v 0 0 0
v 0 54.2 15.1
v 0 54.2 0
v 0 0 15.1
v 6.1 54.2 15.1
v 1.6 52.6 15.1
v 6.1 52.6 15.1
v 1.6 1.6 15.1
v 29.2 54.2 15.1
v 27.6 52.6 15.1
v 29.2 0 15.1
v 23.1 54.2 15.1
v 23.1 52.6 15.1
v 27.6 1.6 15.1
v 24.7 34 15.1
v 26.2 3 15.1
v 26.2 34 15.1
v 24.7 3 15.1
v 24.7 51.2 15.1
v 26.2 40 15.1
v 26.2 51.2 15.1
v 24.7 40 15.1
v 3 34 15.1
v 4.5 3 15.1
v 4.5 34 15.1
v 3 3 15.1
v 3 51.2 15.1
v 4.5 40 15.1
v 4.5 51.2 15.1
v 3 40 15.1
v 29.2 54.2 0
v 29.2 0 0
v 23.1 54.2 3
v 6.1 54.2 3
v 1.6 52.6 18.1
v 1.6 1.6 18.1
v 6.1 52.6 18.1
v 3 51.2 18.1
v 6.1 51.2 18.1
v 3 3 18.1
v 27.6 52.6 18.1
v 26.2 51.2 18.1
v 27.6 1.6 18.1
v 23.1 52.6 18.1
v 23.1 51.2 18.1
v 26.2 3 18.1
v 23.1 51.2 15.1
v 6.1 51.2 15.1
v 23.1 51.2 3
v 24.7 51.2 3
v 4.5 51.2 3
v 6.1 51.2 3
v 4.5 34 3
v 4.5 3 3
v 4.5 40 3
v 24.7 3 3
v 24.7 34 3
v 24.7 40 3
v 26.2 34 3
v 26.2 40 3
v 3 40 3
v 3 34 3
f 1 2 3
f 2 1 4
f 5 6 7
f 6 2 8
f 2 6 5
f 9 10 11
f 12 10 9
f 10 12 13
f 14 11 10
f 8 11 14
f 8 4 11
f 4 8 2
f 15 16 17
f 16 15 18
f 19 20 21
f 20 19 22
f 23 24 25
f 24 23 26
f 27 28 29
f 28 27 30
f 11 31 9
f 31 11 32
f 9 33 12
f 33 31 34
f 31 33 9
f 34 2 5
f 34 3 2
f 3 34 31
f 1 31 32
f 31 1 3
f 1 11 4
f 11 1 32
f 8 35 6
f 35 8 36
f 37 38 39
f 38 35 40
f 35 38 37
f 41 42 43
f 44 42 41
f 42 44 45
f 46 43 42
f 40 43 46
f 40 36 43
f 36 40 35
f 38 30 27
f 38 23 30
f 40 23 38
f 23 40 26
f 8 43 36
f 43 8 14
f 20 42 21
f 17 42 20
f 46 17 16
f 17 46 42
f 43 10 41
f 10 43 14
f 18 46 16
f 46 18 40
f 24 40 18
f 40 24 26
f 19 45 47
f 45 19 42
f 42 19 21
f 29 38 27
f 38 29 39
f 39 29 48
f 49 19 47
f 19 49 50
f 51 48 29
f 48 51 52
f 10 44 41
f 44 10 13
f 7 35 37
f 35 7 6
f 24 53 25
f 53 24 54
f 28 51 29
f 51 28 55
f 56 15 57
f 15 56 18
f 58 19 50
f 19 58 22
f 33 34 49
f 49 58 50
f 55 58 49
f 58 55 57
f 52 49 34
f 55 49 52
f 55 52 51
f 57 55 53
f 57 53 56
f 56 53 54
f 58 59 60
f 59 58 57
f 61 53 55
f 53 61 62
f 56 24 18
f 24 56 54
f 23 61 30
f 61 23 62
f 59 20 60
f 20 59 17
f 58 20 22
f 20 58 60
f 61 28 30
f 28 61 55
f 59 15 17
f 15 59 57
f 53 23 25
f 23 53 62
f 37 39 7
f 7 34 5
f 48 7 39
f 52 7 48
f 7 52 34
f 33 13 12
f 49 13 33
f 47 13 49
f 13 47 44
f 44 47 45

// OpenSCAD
// file: BaSHi-case-common.scad
$fn = $preview?6:360;

thick = 3;
tolerance = 0.1;

pcb_width = 23;

pcb_top = 15;
pcb_thick = 1.6;
pcb_bottom = 4;

cut_terminal_width = 17;

cut_top_pcb_offset = 31;
cut_top_pcb_height = 6;

pcb_border = 1.5;

box_inner_x = pcb_width + 2 * tolerance;
box_outer_x = box_inner_x + 2 * thick;

lip_width = thick / 2 - tolerance;
lip_height = 3;

// -------------------------------------------------------

b_box_inner_x_pcb = pcb_width - 2 * pcb_border + 2 * tolerance;

b_box_inner_z = pcb_bottom + pcb_thick + tolerance;
b_box_outer_z = b_box_inner_z + thick;

// --------------------------------------------------------

t_box_inner_z = pcb_top + tolerance - lip_height;
t_box_outer_z = t_box_inner_z + thick;

// --------------------------------------------------------

module case_top(pcb_height) {    
    box_inner_y = pcb_height + 2 * tolerance;
    box_outer_y = box_inner_y + 2 * thick;
    
    difference() {
        
        union() {
            // Initial box
            cube ([box_outer_x, box_outer_y, t_box_outer_z]);

            // Lip
            translate([thick - lip_width, thick - lip_width, t_box_outer_z])
                cube ([lip_width, box_outer_y - thick - lip_width, lip_height]);
            translate([box_outer_x - thick, thick - lip_width, t_box_outer_z])
                cube ([lip_width, box_outer_y - thick - lip_width, lip_height]);
            translate([thick - lip_width, thick - lip_width, t_box_outer_z])
                cube ([box_outer_x - 2 * thick  + 2 * lip_width, lip_width, lip_height]);
            translate([thick - lip_width, box_outer_y - thick, t_box_outer_z])
                cube ([box_outer_x - 2 * thick + 2 * lip_width, lip_width, lip_height]);
        }

        // Remove inner for pcb
        translate([box_outer_x/2 - b_box_inner_x_pcb/2, box_outer_y/2 - box_inner_y/2, thick])
            cube ([b_box_inner_x_pcb, box_inner_y, t_box_inner_z]);

        // Cutout inner for pcb
        translate([box_outer_x/2 - box_inner_x/2, thick + cut_top_pcb_offset, thick])
            cube ([box_inner_x, cut_top_pcb_height, t_box_inner_z]);

        // Remove Terminal        
        translate([box_outer_x/2 - cut_terminal_width/2, box_outer_y - thick, thick])
            cube ([cut_terminal_width, box_outer_y, t_box_inner_z + lip_height]);
    }
}

module case_bottom(pcb_height) {
    box_inner_y = pcb_height + 2 * tolerance;
    box_outer_y = box_inner_y + 2 * thick;
    
    difference() {
        
        union() {
            // Initial box
            cube ([box_outer_x, box_outer_y, b_box_outer_z]);
            
            // Lip
            translate([0, 0, b_box_outer_z])
                cube ([lip_width, box_outer_y, lip_height]);
            translate([box_outer_x - lip_width, 0, b_box_outer_z])
                cube ([lip_width, box_outer_y, lip_height]);
            translate([0, 0, b_box_outer_z])
                cube ([box_outer_x, lip_width, lip_height]);
            translate([0, box_outer_y - lip_width, b_box_outer_z])
                cube ([box_outer_x, lip_width, lip_height]);       
        }
        
        // Remove for pcb
        translate([box_outer_x/2 - box_inner_x/2, box_outer_y/2 - box_inner_y/2, b_box_outer_z - pcb_thick - tolerance])
            cube ([box_inner_x, box_inner_y, pcb_thick + tolerance]);

        // Cutout inner for pcb
        translate([box_outer_x/2 - box_inner_x/2, thick + cut_top_pcb_offset, thick])
            cube ([box_inner_x, cut_top_pcb_height, t_box_inner_z]);

        // Remove inner
        translate([box_outer_x/2 - b_box_inner_x_pcb/2, box_outer_y/2 - box_inner_y/2, thick])
            cube ([b_box_inner_x_pcb, box_inner_y, b_box_inner_z]);

        // Remove lip
        translate([box_outer_x/2 - cut_terminal_width/2, box_outer_y - thick, thick + b_box_inner_z])
            cube ([cut_terminal_width, box_outer_y, lip_height]);
        
        translate([box_outer_x/2 - b_box_inner_x_pcb/2, box_outer_y/2 - box_inner_y/2, thick])
            cube ([b_box_inner_x_pcb, box_inner_y, b_box_inner_z]);

    }
   
}
// main file
include <./BaSHi-case-common.scad>

// -------------------------------------------------------

case_top(48);
